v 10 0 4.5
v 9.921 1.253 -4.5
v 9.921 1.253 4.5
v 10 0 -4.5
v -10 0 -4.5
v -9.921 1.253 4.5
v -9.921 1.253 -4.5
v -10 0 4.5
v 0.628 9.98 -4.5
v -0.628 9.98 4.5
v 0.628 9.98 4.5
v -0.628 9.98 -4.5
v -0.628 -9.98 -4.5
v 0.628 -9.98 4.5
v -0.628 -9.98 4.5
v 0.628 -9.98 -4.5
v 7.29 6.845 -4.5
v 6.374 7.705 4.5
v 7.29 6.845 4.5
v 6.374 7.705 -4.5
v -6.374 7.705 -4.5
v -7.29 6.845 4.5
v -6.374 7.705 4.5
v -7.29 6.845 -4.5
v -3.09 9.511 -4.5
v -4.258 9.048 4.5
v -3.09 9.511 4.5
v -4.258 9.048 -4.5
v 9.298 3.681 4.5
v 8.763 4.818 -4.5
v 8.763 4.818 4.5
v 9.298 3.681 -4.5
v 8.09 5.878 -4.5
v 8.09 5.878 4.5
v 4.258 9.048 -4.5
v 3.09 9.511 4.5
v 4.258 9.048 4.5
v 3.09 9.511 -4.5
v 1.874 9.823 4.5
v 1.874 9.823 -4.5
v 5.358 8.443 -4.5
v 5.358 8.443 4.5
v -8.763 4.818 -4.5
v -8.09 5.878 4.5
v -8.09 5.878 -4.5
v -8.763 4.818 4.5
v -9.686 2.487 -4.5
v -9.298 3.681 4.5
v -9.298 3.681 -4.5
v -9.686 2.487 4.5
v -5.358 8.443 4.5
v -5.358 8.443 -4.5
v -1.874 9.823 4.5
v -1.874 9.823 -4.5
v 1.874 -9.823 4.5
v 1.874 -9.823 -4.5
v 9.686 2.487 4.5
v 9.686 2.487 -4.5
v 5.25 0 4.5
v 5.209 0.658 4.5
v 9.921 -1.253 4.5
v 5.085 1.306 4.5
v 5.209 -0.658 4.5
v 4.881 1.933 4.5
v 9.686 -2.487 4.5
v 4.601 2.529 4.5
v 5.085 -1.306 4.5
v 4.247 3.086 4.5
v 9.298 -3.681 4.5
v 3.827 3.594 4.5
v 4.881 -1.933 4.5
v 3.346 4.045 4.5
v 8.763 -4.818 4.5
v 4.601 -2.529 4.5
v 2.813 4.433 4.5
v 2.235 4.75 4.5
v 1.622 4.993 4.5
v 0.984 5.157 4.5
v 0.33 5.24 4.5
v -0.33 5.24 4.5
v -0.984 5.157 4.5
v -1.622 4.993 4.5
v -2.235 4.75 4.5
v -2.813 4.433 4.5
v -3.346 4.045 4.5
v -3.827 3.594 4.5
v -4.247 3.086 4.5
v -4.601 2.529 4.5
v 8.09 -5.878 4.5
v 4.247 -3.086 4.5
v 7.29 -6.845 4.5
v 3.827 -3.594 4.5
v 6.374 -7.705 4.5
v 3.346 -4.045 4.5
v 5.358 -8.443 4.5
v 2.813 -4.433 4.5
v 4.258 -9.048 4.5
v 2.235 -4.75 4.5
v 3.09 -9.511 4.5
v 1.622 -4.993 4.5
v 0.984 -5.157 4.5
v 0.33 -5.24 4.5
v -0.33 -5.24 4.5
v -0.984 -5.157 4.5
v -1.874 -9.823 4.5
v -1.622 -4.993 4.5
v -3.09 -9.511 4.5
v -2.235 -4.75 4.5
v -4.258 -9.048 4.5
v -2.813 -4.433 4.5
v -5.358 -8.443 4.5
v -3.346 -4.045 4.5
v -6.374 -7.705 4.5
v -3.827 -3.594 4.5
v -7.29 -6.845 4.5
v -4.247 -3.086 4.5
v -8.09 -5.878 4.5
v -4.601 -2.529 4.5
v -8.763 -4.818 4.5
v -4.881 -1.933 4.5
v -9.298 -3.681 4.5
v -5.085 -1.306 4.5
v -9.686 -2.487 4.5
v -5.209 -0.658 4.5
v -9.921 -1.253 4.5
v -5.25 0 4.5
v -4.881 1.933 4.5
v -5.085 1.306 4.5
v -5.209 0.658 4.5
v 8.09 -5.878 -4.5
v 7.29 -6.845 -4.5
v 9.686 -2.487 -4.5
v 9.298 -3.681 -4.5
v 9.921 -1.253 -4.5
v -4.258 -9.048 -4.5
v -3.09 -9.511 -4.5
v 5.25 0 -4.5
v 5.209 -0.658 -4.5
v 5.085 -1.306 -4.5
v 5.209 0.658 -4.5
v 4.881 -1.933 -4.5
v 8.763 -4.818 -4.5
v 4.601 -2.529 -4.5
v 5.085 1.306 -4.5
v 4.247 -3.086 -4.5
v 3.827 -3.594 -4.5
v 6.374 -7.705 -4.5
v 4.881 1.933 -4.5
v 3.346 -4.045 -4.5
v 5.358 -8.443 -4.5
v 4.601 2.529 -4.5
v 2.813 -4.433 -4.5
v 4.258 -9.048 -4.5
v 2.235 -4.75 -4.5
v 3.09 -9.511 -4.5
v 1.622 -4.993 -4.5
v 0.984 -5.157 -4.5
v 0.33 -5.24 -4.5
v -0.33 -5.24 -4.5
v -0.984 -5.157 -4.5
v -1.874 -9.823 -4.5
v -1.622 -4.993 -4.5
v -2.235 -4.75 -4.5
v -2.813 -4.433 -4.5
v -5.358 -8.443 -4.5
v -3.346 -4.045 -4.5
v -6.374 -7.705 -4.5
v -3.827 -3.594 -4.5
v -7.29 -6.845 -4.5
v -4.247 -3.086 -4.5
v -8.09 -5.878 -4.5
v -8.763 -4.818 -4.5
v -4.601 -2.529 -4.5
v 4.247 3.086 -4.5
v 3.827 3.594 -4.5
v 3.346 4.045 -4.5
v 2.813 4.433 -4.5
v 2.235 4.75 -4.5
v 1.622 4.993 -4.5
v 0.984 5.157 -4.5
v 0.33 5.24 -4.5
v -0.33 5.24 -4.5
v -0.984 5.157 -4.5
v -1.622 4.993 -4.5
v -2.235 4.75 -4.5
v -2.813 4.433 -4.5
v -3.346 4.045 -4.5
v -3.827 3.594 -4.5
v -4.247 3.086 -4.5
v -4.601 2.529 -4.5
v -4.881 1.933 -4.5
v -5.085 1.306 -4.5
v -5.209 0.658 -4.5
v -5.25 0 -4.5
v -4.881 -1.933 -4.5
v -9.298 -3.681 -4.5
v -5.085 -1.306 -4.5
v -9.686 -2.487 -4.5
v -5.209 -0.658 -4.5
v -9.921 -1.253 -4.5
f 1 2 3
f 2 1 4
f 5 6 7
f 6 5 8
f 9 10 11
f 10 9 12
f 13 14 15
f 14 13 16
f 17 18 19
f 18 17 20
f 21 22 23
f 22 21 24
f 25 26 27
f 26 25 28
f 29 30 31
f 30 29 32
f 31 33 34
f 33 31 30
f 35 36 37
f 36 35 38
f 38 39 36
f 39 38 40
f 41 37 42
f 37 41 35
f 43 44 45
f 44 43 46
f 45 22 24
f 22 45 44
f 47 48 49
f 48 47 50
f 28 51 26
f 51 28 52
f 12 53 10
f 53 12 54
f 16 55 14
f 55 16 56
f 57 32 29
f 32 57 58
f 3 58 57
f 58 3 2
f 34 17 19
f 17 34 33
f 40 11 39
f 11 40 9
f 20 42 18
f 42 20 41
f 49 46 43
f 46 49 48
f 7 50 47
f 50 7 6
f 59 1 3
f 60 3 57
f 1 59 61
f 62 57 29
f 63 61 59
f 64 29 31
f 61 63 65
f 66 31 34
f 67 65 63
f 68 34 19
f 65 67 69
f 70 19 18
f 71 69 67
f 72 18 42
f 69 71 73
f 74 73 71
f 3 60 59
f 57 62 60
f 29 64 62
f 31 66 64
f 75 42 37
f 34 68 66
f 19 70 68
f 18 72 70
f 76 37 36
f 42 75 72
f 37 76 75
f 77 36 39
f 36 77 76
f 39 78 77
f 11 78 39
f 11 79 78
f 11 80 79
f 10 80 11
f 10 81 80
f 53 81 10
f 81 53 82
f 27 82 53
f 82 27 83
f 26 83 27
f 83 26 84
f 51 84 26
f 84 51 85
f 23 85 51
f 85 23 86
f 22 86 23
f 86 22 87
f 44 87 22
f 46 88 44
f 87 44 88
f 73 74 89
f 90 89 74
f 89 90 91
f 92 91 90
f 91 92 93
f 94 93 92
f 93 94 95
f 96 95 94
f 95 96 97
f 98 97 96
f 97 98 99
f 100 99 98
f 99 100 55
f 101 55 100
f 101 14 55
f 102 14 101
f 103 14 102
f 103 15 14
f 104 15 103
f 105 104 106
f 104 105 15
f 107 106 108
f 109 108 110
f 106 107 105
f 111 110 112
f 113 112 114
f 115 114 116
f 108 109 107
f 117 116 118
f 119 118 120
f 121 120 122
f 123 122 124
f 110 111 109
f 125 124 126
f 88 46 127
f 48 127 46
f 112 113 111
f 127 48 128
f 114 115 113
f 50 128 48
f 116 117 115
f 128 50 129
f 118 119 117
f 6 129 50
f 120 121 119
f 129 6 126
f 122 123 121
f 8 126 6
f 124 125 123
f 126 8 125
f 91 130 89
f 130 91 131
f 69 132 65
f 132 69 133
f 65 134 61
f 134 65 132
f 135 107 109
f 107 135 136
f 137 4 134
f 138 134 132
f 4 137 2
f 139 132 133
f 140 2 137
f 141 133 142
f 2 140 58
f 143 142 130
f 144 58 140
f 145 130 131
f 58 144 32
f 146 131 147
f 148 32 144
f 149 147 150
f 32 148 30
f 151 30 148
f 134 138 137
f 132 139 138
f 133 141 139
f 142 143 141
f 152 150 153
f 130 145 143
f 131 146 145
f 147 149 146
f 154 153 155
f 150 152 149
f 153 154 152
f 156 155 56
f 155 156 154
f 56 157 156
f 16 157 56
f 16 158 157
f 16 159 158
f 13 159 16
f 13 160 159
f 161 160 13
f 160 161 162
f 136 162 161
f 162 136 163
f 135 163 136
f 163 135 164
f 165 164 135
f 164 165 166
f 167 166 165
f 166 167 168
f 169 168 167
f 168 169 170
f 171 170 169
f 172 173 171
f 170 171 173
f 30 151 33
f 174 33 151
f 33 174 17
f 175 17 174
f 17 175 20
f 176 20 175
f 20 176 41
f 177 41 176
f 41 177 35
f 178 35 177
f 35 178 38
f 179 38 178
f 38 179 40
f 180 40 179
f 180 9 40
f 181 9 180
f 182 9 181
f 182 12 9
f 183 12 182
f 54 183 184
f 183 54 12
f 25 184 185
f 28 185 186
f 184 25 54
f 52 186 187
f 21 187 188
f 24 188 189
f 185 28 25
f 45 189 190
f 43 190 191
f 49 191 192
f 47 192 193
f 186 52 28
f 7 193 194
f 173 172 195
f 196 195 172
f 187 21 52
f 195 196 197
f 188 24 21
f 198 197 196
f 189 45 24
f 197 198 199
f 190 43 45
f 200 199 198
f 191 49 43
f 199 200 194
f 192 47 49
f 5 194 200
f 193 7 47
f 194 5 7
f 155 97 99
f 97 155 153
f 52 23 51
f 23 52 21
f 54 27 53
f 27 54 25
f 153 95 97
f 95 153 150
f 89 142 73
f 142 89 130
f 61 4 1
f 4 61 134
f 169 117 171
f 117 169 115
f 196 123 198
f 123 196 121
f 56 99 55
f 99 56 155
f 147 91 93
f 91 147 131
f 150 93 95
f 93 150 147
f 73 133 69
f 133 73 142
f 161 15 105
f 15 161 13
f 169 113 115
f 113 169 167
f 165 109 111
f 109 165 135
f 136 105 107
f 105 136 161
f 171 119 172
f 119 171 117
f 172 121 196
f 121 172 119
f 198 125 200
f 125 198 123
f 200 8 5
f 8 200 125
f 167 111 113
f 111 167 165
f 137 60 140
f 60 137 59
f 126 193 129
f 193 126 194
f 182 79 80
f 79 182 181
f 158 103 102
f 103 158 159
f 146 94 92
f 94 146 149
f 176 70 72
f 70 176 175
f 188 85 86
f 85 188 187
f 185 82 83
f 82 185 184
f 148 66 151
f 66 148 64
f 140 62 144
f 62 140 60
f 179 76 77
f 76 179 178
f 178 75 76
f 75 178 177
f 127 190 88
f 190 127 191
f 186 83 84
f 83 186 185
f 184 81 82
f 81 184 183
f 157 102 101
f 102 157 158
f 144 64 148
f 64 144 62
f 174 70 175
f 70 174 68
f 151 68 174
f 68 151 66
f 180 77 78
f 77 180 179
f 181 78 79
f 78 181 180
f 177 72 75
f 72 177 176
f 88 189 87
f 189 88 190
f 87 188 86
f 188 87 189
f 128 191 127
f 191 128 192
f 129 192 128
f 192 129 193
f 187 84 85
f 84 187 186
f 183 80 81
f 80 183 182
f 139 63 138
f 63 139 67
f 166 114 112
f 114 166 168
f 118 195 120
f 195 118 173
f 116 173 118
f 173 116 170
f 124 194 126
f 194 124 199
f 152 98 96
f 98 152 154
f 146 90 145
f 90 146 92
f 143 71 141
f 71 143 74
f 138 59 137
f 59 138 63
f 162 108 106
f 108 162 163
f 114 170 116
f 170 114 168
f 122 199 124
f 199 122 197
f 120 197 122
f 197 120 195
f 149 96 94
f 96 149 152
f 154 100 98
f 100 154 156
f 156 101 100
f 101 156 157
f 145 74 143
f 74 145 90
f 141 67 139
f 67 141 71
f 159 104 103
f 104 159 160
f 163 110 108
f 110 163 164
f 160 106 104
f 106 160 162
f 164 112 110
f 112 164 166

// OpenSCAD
$fn = 50;


difference() {
	union() {
		translate(v = [0, 0, -4.5000000000]) {
			cylinder(h = 9, r = 10.0000000000);
		}
	}
	union() {
		translate(v = [0, 0, -100.0000000000]) {
			cylinder(h = 200, r = 5.2500000000);
		}
	}
}
